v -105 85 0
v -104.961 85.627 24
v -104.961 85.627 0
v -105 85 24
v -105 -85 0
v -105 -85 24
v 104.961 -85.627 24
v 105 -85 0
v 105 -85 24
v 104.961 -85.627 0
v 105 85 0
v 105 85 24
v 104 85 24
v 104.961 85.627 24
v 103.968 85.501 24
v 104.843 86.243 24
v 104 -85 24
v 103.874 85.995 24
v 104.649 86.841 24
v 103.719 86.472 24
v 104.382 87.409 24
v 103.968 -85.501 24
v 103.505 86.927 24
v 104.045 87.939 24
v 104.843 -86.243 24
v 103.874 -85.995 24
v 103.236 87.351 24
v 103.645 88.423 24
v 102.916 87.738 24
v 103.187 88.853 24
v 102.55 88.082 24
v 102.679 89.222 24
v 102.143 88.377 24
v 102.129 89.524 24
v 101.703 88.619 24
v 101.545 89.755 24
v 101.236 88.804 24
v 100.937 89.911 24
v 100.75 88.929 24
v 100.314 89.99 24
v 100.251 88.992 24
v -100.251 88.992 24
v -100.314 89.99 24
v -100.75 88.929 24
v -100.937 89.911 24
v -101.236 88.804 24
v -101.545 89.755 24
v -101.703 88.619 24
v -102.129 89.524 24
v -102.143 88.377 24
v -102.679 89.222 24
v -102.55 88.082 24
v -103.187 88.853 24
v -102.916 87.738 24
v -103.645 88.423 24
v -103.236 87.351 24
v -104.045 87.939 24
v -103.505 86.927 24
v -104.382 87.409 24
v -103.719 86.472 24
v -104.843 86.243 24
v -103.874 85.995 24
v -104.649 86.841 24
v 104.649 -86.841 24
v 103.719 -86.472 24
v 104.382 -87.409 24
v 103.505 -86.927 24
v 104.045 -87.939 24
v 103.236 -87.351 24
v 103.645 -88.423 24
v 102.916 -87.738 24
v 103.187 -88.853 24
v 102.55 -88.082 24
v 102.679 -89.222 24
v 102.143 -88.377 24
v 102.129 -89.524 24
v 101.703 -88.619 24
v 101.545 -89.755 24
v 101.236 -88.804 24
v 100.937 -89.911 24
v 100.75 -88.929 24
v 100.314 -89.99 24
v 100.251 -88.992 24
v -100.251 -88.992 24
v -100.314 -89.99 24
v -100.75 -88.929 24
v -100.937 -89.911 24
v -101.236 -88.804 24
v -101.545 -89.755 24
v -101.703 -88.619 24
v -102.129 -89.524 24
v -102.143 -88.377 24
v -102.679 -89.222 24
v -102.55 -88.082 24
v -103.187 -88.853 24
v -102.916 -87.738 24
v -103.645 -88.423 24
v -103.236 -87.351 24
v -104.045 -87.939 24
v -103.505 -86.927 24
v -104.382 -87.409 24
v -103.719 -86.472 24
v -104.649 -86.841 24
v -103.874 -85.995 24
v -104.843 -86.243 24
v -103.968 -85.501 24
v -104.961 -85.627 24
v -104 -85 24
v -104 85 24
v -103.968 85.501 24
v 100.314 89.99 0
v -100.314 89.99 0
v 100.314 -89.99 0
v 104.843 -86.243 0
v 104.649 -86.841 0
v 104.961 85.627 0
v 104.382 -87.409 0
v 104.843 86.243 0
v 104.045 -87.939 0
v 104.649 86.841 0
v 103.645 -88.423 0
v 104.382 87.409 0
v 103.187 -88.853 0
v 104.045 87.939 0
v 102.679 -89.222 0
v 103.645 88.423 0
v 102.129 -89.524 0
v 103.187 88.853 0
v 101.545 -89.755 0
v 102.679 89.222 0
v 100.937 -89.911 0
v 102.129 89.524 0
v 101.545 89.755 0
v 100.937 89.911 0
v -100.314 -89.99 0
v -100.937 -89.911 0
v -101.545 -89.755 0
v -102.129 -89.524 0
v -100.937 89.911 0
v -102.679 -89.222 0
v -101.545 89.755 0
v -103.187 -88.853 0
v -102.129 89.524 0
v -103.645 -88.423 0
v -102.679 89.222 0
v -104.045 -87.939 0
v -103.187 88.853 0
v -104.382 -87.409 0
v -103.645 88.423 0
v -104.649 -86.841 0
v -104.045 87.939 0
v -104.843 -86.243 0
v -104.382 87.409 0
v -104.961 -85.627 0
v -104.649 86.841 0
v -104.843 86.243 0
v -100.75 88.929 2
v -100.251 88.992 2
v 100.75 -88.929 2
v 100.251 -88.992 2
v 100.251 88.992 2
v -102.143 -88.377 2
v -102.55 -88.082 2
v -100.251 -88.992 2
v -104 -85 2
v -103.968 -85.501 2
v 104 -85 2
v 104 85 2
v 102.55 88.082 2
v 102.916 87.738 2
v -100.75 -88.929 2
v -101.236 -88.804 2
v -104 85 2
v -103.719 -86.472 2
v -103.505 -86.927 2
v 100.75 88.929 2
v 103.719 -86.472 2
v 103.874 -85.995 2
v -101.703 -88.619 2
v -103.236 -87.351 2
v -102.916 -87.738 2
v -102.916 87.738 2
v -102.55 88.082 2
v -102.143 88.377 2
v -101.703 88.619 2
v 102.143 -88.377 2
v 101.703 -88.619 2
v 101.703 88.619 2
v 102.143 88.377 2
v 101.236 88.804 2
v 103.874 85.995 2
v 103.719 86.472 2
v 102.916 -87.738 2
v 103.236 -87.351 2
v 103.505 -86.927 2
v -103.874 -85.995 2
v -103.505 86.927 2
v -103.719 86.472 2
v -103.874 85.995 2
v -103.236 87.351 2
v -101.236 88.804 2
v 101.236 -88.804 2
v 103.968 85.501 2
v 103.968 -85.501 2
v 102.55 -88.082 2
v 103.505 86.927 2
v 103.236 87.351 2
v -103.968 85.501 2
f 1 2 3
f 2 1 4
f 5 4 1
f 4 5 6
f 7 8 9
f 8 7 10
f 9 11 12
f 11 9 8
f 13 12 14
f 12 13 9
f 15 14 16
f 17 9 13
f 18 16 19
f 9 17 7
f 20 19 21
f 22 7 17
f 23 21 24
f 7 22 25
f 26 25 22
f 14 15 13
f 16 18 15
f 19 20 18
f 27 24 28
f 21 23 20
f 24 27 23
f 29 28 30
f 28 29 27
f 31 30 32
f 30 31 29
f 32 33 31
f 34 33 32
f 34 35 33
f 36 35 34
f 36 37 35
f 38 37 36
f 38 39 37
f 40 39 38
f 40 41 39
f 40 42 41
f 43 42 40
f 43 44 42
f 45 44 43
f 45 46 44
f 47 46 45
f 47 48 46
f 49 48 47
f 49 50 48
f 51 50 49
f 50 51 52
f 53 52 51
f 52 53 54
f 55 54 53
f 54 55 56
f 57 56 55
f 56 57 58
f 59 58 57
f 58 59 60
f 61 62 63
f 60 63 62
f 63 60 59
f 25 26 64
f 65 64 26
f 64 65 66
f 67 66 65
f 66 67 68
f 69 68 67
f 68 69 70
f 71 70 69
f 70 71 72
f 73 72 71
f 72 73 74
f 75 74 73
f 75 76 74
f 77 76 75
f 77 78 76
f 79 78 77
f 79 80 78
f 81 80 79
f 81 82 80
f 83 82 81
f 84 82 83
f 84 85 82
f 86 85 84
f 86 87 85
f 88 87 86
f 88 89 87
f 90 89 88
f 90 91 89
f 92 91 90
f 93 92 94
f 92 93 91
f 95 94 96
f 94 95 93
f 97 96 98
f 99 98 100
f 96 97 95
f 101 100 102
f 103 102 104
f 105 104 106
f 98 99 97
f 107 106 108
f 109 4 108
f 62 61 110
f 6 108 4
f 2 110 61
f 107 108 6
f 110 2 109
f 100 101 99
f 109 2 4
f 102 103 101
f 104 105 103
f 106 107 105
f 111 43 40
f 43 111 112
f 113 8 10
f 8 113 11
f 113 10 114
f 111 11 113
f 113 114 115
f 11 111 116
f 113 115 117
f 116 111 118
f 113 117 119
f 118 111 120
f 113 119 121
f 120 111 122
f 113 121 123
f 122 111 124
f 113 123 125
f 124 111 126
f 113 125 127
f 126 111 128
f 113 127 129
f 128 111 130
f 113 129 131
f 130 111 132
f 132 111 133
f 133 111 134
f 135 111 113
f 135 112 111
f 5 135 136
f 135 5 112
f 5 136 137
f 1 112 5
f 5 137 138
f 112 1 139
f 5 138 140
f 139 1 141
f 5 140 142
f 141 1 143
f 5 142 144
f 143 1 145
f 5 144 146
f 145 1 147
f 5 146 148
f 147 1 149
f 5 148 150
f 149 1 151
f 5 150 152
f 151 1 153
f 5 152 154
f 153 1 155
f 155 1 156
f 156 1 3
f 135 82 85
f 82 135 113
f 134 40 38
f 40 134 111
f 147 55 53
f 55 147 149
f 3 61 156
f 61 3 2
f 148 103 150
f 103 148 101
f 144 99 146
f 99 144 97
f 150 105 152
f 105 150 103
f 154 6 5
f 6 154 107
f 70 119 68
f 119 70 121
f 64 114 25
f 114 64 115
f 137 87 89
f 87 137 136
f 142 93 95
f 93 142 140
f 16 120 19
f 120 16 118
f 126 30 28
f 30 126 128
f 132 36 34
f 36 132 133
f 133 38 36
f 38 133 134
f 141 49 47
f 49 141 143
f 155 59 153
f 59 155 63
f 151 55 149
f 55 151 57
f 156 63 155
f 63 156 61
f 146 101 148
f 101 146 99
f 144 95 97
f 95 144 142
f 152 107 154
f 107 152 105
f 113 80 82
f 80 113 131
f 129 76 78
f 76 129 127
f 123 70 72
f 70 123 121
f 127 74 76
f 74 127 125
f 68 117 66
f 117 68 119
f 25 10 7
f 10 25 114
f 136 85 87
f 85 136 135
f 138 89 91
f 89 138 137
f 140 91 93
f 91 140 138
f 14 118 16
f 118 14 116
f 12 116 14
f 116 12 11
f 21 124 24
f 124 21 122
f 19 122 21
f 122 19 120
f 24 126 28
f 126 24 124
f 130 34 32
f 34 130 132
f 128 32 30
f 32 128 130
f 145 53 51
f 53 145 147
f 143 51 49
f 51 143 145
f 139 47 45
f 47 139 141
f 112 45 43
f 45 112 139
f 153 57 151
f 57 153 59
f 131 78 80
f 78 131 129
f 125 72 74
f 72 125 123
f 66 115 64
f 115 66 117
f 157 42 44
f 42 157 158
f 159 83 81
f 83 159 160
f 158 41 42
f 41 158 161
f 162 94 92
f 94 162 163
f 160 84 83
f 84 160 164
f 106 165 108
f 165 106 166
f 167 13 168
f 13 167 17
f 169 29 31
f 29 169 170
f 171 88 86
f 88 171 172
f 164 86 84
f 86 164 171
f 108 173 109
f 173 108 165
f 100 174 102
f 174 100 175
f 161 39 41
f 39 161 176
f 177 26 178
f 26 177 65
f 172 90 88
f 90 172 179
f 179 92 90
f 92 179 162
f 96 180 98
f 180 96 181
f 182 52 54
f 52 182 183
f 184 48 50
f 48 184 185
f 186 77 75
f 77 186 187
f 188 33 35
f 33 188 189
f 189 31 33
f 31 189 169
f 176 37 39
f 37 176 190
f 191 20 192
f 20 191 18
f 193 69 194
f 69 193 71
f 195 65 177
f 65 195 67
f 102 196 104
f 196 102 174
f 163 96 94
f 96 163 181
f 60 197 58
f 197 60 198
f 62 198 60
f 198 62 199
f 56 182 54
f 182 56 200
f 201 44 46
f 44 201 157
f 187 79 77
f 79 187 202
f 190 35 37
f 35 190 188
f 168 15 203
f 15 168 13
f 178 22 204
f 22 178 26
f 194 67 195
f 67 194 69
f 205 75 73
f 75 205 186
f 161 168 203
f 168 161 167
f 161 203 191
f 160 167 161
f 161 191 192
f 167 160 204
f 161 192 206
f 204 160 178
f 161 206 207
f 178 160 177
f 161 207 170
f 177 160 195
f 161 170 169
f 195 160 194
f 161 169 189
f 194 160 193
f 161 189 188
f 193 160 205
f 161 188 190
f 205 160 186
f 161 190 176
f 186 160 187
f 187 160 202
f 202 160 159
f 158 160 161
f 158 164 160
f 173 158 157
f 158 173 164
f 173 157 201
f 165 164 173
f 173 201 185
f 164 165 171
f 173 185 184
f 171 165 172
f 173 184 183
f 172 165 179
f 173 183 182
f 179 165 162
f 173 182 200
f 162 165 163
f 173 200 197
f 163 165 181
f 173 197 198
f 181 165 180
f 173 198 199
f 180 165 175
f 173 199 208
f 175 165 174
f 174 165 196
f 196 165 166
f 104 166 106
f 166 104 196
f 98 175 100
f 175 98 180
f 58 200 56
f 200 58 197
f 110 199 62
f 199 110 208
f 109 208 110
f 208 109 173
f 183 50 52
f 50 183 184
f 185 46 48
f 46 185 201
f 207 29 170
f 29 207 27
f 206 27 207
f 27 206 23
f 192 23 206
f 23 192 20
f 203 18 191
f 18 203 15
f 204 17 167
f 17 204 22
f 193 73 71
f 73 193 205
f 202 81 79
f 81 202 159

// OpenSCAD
$fn = 50;


difference() {
	union() {
		hull() {
			translate(v = [-100.0000000000, 85.0000000000, 0]) {
				cylinder(h = 24, r = 5);
			}
			translate(v = [100.0000000000, 85.0000000000, 0]) {
				cylinder(h = 24, r = 5);
			}
			translate(v = [-100.0000000000, -85.0000000000, 0]) {
				cylinder(h = 24, r = 5);
			}
			translate(v = [100.0000000000, -85.0000000000, 0]) {
				cylinder(h = 24, r = 5);
			}
		}
	}
	union() {
		translate(v = [0, 0, 2]) {
			hull() {
				translate(v = [-100.0000000000, 85.0000000000, 0]) {
					cylinder(h = 22, r = 4);
				}
				translate(v = [100.0000000000, 85.0000000000, 0]) {
					cylinder(h = 22, r = 4);
				}
				translate(v = [-100.0000000000, -85.0000000000, 0]) {
					cylinder(h = 22, r = 4);
				}
				translate(v = [100.0000000000, -85.0000000000, 0]) {
					cylinder(h = 22, r = 4);
				}
			}
		}
	}
}
